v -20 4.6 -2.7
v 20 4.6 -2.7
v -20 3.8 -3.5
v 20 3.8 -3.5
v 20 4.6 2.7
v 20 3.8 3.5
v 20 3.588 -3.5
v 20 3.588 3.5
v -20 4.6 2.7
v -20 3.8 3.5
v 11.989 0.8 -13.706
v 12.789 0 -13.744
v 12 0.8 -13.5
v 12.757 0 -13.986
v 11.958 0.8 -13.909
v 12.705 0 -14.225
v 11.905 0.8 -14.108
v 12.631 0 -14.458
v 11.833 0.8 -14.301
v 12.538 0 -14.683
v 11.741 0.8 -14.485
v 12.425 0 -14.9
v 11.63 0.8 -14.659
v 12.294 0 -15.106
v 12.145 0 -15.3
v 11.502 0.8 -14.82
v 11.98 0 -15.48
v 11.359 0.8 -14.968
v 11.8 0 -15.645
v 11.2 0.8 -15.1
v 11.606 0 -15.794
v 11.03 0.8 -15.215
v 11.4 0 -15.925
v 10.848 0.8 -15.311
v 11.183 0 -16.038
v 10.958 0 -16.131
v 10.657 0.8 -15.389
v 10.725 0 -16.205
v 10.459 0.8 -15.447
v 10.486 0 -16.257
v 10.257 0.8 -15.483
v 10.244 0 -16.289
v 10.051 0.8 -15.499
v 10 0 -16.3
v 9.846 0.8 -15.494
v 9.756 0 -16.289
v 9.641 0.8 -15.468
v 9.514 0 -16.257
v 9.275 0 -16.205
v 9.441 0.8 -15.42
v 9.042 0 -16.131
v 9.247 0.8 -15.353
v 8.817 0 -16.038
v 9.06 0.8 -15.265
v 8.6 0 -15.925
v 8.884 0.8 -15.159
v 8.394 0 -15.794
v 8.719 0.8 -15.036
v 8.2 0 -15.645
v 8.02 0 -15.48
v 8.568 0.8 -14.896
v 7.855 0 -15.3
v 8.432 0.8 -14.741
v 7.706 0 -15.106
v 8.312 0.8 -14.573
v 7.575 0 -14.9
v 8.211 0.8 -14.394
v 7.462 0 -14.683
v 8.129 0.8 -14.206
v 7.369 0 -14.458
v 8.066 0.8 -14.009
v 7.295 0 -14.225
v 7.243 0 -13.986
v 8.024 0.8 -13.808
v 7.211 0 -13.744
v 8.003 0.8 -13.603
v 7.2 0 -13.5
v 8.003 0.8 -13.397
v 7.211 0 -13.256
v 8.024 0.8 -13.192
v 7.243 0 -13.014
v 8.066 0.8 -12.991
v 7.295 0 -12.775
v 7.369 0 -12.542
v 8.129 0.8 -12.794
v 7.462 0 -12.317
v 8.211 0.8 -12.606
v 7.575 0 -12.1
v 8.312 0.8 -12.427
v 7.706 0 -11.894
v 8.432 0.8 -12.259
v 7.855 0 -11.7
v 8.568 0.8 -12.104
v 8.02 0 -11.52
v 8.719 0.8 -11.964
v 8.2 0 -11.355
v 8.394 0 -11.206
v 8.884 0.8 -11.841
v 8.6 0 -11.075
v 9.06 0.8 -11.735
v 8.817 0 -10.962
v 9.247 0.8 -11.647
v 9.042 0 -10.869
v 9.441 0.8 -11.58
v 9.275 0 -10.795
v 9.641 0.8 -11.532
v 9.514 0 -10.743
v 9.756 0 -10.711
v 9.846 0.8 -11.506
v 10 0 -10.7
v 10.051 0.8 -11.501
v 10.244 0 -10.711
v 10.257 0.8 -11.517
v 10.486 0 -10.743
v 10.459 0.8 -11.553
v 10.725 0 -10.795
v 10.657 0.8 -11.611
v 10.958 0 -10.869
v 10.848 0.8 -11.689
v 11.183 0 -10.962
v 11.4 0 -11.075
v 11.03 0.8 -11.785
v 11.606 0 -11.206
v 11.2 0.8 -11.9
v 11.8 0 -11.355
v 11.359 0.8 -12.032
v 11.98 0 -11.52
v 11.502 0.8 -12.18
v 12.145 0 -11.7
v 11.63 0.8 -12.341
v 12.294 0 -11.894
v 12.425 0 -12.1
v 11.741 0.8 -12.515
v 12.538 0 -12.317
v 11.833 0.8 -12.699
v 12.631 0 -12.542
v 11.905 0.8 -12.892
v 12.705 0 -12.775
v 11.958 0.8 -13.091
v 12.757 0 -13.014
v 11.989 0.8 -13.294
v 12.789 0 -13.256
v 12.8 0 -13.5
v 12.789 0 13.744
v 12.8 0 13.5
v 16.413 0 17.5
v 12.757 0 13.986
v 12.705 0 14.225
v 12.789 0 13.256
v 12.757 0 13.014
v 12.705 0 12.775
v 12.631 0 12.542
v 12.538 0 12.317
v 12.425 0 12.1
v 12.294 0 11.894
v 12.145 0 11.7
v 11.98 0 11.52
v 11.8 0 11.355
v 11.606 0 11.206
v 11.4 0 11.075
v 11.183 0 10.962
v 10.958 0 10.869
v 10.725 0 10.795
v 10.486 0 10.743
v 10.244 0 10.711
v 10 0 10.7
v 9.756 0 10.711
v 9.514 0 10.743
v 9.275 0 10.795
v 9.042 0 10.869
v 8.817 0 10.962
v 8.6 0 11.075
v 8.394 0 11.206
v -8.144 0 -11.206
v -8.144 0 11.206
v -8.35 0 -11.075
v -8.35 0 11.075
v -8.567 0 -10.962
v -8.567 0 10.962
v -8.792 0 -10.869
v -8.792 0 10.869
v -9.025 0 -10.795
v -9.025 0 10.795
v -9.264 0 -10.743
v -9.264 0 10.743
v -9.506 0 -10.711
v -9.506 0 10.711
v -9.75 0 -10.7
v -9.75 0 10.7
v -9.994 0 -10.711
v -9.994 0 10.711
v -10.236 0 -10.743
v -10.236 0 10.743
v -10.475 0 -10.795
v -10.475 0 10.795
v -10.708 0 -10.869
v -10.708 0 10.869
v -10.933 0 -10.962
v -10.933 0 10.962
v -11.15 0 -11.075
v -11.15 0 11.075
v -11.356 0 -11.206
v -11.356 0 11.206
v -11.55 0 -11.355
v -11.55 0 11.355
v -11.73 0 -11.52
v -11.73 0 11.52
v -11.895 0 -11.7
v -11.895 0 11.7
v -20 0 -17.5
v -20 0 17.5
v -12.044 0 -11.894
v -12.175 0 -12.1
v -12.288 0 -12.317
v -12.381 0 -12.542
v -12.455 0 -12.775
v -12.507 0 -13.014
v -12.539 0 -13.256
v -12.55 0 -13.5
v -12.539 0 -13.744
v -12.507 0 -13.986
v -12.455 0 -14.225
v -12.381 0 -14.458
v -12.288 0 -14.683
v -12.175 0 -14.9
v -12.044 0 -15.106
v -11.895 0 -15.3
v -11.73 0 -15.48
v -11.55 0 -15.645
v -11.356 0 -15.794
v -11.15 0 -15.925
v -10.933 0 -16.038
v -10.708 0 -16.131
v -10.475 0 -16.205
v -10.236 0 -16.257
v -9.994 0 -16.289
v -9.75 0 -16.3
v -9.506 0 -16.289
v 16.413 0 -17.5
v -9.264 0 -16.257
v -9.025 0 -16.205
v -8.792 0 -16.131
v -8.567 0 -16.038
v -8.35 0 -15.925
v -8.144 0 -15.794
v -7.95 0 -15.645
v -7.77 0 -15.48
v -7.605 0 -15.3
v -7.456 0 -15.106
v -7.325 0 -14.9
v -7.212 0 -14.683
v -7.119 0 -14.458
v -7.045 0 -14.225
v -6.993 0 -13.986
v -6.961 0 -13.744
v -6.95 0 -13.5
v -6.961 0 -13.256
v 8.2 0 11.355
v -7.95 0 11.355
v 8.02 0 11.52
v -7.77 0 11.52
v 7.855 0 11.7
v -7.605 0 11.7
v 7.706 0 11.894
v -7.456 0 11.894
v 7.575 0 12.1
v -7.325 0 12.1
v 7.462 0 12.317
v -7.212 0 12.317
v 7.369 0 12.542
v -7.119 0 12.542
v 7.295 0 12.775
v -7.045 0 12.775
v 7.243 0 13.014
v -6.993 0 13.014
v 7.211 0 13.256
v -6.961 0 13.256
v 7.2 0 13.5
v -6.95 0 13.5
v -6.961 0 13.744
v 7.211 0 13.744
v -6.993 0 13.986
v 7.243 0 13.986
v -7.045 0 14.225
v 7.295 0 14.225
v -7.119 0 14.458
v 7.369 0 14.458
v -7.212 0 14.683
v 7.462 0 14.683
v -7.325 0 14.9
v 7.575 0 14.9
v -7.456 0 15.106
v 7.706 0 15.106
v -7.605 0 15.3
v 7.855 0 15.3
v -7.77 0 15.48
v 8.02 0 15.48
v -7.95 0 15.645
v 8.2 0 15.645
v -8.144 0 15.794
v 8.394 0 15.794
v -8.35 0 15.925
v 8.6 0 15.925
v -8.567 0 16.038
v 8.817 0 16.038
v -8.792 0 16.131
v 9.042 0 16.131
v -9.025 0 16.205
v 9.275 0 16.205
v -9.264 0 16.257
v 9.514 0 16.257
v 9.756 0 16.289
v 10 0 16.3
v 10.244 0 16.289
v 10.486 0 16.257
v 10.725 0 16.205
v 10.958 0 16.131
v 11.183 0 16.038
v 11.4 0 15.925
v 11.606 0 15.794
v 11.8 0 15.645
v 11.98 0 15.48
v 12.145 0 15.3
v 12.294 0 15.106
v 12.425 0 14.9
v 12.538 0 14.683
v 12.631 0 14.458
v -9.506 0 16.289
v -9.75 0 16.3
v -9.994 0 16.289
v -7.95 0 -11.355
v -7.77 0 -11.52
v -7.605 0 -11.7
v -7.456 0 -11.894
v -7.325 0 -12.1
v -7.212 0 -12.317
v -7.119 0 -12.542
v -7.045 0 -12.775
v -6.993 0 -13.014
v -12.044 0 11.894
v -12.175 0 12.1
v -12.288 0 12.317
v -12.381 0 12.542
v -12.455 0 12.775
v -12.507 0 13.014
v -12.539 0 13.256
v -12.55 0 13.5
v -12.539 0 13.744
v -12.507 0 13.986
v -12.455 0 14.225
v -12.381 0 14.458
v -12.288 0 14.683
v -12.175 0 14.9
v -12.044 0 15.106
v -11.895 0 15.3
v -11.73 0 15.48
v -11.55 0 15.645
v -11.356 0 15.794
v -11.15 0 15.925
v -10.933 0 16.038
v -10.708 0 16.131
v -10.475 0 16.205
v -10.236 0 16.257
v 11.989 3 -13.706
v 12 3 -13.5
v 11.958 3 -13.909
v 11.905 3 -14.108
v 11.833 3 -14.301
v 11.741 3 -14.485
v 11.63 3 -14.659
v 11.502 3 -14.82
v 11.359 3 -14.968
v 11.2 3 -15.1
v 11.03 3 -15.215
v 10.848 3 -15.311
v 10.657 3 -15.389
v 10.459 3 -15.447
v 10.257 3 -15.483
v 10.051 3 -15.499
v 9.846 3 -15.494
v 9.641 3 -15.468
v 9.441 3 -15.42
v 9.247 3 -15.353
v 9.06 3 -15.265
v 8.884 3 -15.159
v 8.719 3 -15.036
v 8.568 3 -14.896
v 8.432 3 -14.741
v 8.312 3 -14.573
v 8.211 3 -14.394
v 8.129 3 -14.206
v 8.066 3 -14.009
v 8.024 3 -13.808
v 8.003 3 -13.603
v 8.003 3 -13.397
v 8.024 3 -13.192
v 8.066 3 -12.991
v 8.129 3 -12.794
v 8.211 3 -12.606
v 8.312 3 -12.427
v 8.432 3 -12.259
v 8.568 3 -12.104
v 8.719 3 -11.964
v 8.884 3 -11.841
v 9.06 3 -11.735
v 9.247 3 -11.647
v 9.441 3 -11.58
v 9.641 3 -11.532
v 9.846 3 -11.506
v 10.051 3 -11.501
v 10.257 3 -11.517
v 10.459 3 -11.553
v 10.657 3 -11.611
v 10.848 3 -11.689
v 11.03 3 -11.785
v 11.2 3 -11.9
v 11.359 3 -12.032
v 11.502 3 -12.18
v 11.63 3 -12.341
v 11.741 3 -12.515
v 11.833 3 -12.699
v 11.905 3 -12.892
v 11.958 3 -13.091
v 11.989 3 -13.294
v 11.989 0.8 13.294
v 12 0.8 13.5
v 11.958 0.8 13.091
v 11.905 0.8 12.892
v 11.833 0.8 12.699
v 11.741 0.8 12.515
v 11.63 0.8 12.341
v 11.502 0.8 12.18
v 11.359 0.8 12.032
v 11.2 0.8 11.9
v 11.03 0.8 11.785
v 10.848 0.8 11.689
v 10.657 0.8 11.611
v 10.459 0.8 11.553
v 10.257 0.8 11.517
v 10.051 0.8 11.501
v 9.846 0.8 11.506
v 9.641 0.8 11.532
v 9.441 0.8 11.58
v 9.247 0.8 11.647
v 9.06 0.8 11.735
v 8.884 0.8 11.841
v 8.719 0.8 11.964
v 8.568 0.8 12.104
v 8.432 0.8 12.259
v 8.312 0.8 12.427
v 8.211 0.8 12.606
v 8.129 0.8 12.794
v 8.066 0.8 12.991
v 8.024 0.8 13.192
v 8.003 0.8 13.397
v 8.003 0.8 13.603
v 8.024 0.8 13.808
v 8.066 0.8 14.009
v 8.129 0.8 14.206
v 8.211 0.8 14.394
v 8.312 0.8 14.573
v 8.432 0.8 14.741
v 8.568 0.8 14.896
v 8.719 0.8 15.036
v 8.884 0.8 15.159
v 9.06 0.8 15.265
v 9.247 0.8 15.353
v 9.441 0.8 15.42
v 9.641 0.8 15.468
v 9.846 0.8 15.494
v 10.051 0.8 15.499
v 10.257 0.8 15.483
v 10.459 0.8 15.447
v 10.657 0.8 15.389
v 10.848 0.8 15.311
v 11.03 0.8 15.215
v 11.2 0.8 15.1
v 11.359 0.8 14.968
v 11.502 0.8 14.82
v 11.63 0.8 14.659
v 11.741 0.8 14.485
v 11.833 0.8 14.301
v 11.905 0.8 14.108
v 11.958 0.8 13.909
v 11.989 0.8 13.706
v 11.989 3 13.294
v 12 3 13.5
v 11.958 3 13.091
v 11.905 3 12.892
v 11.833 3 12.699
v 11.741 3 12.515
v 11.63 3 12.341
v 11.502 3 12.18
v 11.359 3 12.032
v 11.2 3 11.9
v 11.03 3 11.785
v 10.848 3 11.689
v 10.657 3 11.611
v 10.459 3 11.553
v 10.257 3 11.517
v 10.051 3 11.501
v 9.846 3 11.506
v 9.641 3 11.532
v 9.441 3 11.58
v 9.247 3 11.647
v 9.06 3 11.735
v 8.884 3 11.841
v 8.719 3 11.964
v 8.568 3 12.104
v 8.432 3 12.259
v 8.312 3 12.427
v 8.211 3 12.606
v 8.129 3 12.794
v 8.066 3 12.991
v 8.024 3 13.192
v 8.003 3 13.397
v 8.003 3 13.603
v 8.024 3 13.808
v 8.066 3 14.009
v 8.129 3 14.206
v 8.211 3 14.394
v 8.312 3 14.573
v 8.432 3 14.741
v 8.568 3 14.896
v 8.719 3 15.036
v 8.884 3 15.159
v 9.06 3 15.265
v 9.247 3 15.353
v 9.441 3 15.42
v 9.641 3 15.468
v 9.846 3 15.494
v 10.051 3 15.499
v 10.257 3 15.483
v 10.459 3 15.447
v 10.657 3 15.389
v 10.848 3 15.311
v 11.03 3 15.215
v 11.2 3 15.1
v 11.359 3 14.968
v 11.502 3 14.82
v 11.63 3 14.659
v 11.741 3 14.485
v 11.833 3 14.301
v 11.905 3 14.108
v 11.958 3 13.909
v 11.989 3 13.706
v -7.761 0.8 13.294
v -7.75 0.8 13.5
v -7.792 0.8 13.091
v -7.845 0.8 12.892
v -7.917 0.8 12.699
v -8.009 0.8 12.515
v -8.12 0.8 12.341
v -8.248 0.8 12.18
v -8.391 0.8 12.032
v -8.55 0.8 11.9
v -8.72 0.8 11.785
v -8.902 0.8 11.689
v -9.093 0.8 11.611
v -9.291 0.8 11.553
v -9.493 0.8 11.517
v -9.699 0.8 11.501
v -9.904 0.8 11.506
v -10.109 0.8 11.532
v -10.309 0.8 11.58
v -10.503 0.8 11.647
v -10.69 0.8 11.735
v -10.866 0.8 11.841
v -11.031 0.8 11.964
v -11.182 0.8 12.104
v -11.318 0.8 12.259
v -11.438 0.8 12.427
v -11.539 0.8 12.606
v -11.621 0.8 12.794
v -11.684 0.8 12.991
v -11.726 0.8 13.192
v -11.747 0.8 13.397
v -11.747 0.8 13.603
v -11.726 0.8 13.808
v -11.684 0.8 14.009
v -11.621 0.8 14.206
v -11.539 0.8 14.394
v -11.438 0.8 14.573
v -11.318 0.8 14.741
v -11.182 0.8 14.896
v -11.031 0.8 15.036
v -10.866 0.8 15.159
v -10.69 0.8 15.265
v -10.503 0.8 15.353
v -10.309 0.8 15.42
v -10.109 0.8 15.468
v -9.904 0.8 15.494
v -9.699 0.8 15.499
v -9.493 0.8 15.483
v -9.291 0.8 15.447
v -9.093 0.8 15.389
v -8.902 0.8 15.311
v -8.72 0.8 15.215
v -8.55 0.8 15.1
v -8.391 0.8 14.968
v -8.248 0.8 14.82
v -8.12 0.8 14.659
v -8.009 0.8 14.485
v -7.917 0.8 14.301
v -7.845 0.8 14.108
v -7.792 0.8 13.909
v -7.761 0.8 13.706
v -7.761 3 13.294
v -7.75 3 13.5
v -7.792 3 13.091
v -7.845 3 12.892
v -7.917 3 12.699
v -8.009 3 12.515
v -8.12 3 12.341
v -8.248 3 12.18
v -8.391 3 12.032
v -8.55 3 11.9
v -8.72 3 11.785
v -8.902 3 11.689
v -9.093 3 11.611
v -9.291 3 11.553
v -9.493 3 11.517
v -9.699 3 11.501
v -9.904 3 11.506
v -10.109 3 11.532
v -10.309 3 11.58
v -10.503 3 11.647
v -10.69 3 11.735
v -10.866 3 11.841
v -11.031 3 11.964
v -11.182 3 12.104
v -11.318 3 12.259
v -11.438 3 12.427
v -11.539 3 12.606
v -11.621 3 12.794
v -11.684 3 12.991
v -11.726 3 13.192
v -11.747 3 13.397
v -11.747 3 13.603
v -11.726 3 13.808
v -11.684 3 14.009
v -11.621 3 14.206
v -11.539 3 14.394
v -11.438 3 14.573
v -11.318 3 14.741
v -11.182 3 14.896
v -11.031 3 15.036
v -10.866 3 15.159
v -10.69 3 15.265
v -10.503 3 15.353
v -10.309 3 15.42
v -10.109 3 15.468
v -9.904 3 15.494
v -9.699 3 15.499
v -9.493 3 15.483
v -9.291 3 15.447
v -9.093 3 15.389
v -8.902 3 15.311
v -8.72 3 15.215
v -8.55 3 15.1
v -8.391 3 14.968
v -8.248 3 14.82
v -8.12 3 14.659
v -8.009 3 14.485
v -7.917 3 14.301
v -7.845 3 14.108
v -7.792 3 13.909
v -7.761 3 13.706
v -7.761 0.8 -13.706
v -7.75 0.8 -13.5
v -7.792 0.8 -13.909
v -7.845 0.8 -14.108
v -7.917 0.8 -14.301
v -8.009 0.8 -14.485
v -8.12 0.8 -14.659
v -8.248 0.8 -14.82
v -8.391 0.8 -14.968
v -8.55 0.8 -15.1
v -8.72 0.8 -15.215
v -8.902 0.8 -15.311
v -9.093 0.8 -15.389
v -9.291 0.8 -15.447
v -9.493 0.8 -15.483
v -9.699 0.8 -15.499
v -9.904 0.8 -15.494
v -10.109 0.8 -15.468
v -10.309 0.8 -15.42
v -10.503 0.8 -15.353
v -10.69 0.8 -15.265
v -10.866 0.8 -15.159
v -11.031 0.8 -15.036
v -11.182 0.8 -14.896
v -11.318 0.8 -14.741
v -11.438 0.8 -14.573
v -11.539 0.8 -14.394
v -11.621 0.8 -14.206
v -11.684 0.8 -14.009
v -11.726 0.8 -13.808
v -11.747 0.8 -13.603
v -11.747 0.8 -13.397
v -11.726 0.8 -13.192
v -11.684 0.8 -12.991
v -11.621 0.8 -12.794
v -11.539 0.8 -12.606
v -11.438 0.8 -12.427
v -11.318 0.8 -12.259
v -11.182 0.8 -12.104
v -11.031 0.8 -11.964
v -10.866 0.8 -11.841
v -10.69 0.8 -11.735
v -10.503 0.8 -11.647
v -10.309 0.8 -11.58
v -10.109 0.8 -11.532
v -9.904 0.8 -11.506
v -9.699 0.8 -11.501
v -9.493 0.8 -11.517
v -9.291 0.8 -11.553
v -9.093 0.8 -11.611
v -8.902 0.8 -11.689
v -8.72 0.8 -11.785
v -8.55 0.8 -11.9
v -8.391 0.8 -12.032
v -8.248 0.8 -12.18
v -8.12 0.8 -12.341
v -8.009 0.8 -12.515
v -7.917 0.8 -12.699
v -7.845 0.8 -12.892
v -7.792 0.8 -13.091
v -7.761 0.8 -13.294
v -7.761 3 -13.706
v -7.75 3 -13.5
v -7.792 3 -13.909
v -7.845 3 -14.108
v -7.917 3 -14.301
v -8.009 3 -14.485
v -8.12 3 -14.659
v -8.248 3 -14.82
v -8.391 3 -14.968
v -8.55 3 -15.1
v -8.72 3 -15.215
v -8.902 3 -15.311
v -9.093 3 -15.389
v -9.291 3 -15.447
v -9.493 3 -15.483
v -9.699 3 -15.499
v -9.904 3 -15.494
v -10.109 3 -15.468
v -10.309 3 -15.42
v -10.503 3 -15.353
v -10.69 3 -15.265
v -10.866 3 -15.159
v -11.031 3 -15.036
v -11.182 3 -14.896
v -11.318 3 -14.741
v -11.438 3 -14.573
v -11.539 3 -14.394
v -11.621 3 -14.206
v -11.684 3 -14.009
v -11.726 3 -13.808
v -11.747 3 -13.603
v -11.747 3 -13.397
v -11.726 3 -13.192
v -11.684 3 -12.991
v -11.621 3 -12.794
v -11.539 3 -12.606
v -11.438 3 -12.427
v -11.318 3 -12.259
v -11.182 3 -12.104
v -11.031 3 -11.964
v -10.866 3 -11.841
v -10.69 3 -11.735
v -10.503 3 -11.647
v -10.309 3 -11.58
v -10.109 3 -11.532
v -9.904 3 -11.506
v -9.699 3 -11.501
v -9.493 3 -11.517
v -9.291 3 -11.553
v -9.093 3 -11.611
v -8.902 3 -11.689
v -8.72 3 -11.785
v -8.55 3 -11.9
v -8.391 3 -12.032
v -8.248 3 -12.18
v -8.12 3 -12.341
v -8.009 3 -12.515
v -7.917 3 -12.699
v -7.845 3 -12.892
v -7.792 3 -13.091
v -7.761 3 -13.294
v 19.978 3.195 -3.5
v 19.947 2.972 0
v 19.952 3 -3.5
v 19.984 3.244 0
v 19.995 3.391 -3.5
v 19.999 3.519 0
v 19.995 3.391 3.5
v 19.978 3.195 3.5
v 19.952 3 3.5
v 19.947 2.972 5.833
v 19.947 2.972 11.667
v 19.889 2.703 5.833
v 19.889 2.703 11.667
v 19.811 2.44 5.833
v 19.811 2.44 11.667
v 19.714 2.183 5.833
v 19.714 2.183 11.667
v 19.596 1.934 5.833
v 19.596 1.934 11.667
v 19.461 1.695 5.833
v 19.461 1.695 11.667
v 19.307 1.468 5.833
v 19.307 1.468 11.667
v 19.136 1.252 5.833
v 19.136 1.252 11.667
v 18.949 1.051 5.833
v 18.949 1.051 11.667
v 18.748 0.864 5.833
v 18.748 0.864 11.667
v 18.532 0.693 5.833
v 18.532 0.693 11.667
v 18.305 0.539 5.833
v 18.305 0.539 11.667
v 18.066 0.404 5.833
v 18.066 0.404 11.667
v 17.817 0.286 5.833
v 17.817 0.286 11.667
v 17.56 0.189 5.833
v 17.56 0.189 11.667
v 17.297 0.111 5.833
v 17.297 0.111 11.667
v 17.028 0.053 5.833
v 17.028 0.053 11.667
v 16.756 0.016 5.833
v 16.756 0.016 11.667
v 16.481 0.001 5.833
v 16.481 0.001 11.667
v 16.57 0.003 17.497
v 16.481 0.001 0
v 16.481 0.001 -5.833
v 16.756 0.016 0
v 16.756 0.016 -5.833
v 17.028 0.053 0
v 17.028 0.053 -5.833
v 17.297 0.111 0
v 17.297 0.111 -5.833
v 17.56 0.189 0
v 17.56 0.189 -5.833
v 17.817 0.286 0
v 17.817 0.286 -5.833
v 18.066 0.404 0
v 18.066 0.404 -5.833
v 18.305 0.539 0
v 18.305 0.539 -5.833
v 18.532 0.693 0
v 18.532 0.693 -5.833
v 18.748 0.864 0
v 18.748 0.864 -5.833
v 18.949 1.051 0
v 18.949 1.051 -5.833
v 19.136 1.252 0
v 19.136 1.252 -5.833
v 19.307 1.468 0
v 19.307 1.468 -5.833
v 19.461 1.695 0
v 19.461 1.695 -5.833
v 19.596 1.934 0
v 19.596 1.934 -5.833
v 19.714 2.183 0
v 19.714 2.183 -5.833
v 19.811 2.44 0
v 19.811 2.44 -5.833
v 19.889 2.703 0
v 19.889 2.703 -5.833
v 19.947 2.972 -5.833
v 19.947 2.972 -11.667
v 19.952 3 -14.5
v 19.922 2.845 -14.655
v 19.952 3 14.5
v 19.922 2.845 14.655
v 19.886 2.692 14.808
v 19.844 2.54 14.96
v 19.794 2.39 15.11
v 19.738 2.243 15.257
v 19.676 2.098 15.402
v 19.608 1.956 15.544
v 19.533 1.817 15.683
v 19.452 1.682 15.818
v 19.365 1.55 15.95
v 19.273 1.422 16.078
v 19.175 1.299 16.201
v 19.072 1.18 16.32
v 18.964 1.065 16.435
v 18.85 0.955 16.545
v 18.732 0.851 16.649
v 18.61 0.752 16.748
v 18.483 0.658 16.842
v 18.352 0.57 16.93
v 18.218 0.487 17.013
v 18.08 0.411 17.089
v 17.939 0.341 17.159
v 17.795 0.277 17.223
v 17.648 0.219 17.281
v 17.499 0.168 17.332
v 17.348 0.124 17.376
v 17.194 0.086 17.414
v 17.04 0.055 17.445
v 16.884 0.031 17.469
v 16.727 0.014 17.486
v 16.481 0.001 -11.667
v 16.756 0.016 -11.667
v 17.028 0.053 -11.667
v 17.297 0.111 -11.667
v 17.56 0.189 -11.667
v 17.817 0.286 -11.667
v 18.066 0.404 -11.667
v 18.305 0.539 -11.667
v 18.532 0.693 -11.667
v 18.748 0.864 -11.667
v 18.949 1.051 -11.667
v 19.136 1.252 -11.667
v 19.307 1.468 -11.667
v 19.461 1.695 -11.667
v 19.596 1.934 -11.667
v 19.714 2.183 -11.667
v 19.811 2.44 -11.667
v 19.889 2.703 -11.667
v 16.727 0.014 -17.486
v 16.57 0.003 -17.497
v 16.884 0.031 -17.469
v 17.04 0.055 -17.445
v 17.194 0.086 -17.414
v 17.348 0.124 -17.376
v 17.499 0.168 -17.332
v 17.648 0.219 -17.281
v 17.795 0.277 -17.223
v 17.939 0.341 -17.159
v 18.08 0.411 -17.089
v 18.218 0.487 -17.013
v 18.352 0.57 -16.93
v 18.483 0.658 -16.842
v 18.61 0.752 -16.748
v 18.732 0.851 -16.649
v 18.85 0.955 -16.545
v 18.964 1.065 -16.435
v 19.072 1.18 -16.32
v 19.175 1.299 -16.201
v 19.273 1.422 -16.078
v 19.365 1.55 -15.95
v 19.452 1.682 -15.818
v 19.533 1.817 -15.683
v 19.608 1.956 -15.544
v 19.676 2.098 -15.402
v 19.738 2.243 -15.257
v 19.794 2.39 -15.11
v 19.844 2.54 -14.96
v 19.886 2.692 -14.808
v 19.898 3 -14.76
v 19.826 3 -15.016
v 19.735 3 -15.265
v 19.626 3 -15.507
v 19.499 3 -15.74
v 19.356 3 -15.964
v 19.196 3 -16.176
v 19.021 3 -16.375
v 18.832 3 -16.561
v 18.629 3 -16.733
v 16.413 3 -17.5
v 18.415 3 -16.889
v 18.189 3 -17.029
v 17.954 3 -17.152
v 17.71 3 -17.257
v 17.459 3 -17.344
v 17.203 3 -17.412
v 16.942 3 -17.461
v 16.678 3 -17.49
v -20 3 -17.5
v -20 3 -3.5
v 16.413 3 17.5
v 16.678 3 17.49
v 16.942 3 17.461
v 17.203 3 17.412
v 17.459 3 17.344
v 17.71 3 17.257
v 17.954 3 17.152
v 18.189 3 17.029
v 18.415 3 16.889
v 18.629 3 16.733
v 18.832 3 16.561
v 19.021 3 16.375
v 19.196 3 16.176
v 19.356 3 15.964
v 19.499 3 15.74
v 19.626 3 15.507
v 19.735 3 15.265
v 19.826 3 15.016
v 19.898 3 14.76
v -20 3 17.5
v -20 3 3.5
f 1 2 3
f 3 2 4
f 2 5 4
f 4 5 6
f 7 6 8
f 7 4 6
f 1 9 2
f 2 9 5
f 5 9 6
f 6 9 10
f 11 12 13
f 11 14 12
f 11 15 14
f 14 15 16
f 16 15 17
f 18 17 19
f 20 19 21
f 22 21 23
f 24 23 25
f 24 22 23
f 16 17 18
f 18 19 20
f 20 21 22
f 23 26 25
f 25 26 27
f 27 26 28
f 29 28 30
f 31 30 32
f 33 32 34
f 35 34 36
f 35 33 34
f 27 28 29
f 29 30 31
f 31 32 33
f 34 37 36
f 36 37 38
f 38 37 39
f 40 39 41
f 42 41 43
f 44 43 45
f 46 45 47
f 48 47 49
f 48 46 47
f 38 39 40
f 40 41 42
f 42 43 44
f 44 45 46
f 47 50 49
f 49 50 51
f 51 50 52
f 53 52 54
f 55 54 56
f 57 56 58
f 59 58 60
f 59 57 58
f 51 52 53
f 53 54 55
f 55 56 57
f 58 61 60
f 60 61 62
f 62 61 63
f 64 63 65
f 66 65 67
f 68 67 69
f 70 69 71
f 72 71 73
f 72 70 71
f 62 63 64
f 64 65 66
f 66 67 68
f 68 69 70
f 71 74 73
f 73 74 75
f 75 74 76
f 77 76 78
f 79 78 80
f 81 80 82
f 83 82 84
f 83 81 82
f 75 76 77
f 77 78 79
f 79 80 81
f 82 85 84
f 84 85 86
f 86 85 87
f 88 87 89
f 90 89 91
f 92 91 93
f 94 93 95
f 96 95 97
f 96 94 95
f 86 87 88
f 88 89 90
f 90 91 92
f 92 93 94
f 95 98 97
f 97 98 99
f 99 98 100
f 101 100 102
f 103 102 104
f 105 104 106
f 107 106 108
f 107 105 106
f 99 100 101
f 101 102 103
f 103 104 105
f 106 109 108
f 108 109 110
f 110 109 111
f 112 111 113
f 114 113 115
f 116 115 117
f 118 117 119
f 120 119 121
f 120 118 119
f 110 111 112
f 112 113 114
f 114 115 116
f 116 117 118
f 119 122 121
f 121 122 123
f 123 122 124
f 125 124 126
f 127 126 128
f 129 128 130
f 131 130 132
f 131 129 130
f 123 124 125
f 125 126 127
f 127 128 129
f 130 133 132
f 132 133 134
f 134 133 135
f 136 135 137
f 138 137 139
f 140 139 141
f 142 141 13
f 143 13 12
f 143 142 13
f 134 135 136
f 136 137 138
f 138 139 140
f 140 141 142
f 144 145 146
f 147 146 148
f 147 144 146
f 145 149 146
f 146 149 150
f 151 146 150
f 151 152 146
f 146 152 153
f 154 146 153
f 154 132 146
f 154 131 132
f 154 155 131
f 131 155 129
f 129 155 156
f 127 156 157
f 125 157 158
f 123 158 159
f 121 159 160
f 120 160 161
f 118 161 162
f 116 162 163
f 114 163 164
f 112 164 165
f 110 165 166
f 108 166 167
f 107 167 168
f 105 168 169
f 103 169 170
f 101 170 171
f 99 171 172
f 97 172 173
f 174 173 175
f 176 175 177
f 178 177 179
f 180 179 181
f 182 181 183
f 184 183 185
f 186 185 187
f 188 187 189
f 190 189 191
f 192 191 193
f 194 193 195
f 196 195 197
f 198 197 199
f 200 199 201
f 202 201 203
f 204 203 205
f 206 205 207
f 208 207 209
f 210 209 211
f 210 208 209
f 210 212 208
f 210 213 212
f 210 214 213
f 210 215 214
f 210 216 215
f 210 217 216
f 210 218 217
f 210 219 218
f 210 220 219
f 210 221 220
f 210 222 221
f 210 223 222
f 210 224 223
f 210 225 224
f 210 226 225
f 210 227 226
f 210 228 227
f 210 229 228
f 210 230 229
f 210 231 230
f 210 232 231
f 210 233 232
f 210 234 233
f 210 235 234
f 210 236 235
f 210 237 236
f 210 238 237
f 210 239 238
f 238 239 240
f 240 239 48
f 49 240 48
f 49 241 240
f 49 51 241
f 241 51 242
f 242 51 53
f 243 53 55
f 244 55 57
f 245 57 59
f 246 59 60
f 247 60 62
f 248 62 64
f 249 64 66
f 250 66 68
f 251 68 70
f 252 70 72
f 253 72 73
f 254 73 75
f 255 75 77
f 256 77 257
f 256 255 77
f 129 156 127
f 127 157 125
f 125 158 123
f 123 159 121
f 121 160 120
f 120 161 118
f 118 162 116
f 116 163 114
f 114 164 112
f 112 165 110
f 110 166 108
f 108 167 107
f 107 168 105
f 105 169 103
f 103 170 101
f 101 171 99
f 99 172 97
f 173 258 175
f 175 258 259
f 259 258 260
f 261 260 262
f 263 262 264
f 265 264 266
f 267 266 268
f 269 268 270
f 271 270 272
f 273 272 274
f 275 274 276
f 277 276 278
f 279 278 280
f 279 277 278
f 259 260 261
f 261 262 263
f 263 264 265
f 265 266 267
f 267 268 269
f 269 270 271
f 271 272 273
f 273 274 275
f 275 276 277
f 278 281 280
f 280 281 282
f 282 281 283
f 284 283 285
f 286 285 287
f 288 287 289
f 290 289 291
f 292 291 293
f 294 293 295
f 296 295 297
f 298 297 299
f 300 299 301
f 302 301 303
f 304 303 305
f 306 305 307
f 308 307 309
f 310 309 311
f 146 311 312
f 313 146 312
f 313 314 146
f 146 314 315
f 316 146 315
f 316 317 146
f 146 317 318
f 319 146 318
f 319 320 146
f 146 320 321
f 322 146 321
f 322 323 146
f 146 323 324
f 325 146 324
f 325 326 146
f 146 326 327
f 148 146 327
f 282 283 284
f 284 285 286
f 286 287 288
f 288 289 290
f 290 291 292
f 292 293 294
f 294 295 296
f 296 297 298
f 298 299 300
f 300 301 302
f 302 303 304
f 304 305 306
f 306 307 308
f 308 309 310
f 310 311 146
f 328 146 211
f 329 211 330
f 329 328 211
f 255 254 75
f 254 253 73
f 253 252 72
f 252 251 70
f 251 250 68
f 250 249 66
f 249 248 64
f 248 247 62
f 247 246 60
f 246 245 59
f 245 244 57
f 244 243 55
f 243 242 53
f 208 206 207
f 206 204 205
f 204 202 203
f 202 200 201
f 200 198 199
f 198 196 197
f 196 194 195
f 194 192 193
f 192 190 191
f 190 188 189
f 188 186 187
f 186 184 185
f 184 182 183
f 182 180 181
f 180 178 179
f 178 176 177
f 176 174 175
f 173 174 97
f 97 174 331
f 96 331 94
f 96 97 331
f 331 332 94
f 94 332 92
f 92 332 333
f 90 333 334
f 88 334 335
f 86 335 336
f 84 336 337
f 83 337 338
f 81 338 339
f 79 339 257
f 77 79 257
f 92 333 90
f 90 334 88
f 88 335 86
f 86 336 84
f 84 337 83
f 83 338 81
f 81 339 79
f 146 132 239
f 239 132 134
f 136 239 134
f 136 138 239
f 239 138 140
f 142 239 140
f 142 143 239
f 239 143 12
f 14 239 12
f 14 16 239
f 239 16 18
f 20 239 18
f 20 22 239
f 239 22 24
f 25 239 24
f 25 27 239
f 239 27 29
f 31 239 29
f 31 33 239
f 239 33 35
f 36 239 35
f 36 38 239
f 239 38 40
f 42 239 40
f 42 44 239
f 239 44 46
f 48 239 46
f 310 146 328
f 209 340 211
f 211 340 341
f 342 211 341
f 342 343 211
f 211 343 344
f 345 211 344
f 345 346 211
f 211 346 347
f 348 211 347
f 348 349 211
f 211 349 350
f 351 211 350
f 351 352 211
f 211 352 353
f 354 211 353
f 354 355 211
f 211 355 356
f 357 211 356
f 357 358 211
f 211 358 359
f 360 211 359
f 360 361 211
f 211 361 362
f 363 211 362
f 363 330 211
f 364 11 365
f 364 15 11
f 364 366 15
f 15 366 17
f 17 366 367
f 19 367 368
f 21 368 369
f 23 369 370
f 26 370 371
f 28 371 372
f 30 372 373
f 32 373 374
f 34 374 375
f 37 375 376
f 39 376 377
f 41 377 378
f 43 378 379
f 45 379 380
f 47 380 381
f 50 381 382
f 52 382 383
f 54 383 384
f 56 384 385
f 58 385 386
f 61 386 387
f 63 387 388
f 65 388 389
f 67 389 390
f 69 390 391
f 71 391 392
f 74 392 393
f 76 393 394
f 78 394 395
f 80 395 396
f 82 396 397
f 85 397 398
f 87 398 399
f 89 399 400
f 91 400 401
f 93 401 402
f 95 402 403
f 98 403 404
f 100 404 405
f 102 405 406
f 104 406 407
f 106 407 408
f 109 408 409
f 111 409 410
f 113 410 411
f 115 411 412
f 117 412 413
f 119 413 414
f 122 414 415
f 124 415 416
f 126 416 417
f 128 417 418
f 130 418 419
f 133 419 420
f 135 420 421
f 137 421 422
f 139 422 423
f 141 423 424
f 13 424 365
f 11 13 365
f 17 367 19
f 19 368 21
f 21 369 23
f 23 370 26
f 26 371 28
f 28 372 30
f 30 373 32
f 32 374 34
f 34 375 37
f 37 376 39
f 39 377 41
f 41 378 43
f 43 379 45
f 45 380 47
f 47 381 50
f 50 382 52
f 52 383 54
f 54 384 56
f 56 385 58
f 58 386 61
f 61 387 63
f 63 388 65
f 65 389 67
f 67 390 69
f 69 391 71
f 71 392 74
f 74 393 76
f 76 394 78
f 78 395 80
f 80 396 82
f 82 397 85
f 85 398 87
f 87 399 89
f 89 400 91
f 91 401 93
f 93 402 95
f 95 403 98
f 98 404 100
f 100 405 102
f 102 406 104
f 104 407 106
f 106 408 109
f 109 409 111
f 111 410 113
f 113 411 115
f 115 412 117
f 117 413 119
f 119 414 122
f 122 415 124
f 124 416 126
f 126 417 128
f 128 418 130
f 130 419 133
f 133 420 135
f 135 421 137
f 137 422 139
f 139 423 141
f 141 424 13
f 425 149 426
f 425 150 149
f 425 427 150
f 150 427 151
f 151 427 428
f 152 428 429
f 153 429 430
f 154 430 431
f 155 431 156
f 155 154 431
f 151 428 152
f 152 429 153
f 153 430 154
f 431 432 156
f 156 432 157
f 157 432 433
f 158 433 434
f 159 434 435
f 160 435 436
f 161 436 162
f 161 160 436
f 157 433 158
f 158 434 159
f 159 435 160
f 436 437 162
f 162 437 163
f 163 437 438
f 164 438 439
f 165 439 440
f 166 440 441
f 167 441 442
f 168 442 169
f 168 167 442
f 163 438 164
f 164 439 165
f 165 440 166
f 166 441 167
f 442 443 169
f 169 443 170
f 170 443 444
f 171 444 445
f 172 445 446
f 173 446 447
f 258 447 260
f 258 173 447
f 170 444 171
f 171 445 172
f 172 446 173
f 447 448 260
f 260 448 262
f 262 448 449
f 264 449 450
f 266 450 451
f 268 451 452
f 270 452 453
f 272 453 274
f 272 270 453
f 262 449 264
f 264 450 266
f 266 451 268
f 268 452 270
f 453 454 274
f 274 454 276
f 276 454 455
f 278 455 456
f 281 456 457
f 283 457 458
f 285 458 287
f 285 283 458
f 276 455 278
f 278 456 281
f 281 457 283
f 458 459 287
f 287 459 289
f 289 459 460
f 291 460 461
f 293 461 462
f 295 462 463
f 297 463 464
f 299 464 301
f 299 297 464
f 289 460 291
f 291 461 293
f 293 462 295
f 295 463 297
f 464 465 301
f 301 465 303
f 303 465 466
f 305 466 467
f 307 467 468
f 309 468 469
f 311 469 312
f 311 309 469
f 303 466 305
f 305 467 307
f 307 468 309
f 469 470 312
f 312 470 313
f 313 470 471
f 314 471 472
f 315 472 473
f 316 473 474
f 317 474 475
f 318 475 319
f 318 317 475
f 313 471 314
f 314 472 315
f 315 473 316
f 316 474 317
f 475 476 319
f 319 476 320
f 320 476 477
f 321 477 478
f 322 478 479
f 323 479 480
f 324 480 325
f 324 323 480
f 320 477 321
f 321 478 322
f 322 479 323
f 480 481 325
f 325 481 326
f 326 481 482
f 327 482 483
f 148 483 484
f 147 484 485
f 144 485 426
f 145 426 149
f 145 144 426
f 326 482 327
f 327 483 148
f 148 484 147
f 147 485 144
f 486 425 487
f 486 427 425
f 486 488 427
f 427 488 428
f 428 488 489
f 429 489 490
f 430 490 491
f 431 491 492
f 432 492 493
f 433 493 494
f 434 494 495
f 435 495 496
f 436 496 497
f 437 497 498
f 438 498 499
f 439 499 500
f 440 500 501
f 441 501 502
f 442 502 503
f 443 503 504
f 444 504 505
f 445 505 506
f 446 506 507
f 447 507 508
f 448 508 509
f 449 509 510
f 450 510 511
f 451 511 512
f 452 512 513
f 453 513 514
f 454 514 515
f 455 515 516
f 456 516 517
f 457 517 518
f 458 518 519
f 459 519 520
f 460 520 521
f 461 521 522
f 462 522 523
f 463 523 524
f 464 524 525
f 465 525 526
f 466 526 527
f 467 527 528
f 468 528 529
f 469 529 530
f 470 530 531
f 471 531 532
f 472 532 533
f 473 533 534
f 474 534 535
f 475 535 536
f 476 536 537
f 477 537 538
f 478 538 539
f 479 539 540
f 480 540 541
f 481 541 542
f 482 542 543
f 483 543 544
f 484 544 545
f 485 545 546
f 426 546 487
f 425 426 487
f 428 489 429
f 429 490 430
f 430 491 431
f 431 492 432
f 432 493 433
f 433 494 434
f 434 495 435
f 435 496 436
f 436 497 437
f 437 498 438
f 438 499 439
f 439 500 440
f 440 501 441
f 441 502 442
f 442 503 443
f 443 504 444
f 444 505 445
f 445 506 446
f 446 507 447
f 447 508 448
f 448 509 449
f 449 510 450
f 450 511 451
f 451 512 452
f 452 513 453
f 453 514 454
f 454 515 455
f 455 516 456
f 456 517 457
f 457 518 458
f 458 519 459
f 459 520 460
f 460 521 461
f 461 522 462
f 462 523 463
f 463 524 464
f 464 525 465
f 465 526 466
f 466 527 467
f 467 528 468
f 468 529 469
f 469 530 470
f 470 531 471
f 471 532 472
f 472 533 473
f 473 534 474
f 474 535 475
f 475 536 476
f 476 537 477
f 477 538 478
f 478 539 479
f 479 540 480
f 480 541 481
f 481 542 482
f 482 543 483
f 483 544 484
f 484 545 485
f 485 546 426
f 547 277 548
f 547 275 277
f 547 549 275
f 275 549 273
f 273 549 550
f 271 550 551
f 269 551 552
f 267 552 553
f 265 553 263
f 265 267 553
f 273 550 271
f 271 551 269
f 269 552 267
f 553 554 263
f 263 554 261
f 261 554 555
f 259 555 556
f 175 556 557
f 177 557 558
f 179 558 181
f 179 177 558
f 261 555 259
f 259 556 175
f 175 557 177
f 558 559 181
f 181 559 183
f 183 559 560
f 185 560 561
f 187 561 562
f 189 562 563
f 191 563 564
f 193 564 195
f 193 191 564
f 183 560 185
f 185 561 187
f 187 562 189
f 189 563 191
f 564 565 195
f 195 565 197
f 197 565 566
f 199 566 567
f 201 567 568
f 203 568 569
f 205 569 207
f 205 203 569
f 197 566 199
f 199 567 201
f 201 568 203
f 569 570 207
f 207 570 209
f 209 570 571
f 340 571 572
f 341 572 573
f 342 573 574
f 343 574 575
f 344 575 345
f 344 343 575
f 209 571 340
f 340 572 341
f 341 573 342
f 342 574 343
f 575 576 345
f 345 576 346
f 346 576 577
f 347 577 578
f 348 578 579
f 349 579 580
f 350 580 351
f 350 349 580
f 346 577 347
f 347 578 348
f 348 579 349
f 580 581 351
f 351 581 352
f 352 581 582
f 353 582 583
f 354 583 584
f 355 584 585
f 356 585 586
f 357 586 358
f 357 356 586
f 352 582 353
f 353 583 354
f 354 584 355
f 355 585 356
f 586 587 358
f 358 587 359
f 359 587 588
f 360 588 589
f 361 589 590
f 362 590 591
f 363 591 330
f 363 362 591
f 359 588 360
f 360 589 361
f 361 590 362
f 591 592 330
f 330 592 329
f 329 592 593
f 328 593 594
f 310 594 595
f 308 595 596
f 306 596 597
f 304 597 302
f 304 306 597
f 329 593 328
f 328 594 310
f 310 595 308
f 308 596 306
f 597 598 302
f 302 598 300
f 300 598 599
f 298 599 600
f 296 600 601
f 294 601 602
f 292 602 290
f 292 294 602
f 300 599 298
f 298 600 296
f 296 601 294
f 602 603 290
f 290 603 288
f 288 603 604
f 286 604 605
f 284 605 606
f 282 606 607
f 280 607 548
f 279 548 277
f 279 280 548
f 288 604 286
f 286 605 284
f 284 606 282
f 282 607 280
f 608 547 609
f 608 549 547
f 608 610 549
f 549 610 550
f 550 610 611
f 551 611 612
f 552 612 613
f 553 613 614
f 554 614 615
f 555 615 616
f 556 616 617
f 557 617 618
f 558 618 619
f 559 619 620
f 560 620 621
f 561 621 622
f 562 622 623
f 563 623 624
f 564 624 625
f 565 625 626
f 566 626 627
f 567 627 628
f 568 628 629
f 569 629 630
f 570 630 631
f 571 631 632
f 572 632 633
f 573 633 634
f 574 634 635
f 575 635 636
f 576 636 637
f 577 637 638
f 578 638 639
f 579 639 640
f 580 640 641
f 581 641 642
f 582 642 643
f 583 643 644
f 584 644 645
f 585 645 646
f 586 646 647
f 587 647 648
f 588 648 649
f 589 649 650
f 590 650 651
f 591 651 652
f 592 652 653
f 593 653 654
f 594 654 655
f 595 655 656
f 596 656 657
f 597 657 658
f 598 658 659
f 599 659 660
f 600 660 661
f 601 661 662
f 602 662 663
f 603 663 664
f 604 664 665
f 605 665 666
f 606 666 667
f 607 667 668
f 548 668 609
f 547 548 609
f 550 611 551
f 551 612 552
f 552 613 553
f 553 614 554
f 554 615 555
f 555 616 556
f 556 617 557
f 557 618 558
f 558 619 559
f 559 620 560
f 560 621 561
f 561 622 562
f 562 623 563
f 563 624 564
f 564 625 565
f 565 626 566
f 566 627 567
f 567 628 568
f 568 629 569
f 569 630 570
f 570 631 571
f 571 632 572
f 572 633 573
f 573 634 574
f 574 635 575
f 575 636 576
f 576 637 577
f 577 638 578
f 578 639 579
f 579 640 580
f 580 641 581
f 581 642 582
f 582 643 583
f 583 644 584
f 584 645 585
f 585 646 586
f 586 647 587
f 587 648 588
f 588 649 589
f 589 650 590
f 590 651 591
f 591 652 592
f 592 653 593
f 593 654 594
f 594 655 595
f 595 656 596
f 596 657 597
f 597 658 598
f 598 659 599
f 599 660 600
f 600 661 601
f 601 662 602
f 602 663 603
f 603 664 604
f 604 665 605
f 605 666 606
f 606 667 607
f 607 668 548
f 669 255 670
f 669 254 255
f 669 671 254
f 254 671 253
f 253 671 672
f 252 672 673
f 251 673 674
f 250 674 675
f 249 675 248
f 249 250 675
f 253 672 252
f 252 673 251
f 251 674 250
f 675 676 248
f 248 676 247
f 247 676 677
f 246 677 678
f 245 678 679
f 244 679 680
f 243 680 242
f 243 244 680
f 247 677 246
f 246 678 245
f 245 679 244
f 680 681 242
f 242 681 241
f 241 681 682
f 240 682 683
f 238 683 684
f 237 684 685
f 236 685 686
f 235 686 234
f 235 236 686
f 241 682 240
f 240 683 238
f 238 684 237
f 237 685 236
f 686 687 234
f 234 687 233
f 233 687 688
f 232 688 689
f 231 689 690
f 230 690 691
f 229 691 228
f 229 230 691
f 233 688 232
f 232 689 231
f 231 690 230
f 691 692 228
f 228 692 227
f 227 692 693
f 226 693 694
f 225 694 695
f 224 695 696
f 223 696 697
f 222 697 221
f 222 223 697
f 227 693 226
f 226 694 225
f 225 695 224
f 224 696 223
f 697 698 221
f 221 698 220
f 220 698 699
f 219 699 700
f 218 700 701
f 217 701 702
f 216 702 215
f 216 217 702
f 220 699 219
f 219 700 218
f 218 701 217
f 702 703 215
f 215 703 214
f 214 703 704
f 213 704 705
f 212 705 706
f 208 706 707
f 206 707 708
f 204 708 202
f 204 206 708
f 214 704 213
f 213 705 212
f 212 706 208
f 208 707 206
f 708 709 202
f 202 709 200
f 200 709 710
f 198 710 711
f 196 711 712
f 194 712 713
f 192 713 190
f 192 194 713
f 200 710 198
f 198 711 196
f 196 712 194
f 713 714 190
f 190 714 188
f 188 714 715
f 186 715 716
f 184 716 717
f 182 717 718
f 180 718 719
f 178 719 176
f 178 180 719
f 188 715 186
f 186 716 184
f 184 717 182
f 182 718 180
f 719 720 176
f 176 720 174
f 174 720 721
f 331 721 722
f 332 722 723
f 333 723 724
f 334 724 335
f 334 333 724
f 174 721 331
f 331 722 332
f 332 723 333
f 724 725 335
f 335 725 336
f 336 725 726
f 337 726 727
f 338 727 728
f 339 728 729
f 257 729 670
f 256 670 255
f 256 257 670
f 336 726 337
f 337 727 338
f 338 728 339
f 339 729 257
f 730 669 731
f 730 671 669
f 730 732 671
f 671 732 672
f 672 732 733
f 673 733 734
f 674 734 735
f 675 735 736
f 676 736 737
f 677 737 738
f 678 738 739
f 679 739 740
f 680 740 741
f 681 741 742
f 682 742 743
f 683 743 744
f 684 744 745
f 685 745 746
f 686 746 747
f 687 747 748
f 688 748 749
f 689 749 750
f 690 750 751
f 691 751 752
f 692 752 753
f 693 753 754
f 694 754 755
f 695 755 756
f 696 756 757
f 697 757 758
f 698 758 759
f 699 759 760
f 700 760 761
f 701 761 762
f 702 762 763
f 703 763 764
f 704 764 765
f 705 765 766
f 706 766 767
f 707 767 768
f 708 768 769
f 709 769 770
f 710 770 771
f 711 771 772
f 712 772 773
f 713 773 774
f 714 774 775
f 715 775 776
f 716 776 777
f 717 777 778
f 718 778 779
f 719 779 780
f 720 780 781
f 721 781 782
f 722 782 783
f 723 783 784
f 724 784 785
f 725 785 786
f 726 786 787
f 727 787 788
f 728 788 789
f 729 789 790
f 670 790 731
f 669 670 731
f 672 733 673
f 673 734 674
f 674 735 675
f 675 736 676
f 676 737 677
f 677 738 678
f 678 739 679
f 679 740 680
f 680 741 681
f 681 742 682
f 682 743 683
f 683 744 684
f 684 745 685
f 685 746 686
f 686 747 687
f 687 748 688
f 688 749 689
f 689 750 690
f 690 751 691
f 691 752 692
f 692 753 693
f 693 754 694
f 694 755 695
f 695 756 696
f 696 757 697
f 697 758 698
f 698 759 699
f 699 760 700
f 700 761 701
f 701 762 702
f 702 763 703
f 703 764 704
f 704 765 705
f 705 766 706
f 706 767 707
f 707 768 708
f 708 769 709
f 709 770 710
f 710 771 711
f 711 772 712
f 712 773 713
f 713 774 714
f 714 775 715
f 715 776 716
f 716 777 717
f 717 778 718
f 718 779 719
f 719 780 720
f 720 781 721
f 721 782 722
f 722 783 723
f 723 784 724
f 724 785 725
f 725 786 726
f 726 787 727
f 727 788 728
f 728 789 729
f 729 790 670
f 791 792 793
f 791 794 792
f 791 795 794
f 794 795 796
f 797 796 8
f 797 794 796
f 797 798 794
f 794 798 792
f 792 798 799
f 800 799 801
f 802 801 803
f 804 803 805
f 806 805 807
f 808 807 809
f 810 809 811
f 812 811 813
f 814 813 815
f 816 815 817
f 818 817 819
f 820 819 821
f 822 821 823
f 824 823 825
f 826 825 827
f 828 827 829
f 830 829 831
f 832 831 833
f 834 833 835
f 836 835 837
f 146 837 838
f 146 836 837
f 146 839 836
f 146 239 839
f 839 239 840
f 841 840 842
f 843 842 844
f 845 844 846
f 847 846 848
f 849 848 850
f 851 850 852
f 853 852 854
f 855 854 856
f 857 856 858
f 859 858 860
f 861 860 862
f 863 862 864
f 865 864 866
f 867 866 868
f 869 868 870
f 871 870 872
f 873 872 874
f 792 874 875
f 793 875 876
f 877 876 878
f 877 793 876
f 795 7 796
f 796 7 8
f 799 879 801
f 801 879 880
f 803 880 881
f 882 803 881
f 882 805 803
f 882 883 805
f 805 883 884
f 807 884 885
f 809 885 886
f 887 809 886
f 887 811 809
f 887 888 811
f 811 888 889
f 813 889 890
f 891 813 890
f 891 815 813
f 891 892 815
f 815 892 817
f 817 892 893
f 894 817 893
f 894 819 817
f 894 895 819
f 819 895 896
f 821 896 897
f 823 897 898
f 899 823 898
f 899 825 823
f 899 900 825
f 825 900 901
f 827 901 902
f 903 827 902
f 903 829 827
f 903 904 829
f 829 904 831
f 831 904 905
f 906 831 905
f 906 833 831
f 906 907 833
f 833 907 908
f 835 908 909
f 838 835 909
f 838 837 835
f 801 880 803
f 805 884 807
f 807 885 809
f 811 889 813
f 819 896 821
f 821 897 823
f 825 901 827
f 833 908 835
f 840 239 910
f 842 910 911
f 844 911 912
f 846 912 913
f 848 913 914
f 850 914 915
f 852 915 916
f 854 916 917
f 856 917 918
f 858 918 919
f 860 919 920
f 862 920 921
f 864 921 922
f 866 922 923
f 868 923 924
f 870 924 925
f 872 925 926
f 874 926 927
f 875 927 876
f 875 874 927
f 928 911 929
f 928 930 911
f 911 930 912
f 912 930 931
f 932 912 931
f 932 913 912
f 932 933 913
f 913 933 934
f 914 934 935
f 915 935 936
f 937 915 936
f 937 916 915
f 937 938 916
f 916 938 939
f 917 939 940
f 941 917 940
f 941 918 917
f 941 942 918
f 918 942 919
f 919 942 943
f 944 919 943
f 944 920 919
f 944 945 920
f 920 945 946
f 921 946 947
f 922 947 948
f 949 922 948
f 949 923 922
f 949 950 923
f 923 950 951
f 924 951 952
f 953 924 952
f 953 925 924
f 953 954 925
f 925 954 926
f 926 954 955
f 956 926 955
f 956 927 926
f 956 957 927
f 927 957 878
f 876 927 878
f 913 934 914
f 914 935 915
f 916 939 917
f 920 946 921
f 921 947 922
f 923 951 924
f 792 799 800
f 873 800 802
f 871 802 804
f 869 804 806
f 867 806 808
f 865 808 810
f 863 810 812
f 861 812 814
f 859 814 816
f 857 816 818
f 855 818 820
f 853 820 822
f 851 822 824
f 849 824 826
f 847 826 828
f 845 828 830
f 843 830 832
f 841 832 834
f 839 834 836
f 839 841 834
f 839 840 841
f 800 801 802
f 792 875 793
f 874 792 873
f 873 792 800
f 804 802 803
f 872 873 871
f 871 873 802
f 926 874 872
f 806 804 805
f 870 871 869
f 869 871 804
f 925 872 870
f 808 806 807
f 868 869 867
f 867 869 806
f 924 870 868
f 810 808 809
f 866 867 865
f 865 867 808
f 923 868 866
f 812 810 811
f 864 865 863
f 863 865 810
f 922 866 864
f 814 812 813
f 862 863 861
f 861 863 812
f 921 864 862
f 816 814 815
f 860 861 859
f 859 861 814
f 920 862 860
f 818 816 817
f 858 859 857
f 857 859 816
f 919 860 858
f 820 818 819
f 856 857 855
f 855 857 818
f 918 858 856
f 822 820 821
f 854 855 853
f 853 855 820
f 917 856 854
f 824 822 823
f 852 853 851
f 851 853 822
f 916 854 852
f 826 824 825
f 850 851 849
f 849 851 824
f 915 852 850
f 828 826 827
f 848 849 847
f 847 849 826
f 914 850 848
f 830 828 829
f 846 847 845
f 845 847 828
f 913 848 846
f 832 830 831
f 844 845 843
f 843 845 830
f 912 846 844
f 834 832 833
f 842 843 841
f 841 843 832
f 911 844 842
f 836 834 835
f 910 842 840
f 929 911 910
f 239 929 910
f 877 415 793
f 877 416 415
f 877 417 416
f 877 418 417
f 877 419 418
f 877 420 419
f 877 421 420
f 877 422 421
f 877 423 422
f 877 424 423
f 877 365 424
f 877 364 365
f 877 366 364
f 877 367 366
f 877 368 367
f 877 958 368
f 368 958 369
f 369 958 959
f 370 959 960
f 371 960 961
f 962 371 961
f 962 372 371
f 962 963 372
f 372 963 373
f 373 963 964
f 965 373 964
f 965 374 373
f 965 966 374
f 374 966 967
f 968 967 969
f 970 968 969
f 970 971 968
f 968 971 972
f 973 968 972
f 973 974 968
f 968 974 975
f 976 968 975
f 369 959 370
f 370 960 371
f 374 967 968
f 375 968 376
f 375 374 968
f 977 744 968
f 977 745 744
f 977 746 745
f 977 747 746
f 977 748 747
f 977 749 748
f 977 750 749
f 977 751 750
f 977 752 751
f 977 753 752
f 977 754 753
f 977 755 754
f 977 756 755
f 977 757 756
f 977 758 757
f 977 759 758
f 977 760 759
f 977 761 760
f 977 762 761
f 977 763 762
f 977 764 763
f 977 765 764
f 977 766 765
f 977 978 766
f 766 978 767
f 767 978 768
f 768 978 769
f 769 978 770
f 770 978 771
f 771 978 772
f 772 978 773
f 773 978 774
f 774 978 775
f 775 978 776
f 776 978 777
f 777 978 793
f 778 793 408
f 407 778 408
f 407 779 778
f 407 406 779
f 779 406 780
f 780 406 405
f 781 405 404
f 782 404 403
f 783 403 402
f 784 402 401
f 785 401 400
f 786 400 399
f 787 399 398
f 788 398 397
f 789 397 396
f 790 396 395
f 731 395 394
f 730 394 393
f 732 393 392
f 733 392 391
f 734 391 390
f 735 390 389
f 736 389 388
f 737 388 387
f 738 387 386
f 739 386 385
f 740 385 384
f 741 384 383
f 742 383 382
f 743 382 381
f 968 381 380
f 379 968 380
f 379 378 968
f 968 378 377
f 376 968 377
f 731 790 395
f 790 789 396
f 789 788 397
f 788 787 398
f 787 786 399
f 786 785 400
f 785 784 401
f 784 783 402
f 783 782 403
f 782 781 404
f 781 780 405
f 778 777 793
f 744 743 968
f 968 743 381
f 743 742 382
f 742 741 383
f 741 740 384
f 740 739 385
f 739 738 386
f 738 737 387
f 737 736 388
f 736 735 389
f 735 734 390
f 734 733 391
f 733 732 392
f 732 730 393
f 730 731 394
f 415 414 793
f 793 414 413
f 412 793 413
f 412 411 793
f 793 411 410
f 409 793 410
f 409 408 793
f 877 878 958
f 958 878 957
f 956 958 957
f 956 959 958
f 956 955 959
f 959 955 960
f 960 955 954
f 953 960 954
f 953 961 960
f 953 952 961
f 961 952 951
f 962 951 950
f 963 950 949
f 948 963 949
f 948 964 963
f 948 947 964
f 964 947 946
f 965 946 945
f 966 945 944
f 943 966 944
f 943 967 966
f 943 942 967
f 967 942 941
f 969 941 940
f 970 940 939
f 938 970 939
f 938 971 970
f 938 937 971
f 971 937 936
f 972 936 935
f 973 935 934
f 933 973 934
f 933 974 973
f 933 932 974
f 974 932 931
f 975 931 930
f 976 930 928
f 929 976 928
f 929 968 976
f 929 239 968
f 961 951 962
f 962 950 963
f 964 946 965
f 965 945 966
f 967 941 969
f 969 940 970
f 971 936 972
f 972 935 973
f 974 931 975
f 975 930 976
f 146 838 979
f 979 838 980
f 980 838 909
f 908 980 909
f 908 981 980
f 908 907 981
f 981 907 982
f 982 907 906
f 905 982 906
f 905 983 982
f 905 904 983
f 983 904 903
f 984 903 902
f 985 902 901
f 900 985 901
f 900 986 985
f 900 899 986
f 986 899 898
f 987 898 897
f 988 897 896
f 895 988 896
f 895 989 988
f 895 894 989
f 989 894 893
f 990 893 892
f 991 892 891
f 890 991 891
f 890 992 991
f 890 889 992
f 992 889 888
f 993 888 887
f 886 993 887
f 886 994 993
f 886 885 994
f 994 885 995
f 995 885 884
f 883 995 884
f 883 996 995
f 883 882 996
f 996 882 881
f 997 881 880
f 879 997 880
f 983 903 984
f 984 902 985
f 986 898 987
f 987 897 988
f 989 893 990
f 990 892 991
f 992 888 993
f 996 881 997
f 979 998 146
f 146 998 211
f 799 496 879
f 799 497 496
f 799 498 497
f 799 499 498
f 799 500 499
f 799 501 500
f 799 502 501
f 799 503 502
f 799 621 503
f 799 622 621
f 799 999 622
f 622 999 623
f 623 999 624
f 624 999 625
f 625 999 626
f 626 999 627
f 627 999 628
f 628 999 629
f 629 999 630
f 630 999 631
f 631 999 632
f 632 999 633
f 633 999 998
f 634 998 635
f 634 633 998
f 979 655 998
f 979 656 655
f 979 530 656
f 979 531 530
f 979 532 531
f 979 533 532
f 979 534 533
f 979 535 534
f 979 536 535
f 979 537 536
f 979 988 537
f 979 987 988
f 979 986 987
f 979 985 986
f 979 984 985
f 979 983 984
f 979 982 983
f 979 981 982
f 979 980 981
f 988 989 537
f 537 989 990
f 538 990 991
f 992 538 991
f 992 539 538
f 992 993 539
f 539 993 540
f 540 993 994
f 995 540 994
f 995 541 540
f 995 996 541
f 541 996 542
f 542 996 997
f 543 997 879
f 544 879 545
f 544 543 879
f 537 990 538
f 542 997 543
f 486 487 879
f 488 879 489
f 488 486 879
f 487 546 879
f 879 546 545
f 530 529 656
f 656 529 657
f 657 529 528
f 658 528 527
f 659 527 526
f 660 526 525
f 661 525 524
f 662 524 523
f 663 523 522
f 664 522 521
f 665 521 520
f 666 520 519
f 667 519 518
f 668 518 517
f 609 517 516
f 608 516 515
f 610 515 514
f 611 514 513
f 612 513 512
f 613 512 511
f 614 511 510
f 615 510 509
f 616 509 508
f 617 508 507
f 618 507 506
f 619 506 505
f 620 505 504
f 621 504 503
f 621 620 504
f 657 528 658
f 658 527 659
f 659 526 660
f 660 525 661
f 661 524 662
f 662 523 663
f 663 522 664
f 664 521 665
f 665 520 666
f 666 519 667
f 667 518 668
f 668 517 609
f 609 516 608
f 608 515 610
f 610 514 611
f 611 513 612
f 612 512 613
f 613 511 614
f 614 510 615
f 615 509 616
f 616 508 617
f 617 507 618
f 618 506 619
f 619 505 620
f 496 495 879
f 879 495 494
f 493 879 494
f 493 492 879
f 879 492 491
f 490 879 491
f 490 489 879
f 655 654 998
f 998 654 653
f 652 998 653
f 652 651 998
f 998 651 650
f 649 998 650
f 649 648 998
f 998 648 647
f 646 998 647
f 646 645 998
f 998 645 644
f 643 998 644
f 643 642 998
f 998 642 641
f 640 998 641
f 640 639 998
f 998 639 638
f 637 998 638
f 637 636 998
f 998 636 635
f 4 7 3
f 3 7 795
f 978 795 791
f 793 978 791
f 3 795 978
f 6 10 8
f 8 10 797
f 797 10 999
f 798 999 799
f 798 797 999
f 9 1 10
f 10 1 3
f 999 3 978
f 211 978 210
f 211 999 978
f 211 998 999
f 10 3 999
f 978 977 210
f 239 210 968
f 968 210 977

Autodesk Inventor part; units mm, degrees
ref_plane "YZ Plane" through (0, 0, 0) normal (1, 0, 0) x (0, 1, 0)
ref_plane "XZ Plane" through (0, 0, 0) normal (0, 1, 0) x (-1, 0, 0)
ref_plane "XY Plane" through (0, 0, 0) normal (0, 0, 1) x (1, 0, 0)
sketch "Sketch2" plane through (0, 0, 0) normal (0, 1, 0) x (-1, 0, 0)
  line L0 (20, 17.5) -> (-20, 17.5)
  line L1 (-20, 17.5) -> (-20, -17.5)
  line L2 (-20, -17.5) -> (20, -17.5)
  line L3 (20, -17.5) -> (20, 17.5)
  point P0 (0, 0)
  point P1 (20, 0)
  point P2 (0, -17.5)
  dimension "d0" = 40
  dimension "d1" = 35
extrude "Extrusion1" add sketch "Sketch2" along normal blind 3
sketch "Sketch3" plane through (0, 3, 0) normal (0, 1, 0) x (1, 0, 0)
  line L0 (-20, -17.5) -> (20, -17.5) projected
  line L1 (20, -17.5) -> (20, 17.5) projected
  line L2 (20, 17.5) -> (-20, 17.5) projected
  line L3 (-20, 17.5) -> (-20, -17.5) projected
  line L4 (-20, 0) -> (20, 0)
  line L5 (0, 0) -> (-9.75, 0)
  line L6 (-9.75, 0) -> (-9.75, 17.5)
  line L7 (0, 0) -> (9.75, 0)
  line L8 (9.75, 0) -> (9.75, 17.5)
  line L9 (0, 0) -> (0, 13.5)
  line L10 (0, 13.5) -> (-20, 13.5)
  line L11 (0, 13.5) -> (20, 13.5)
  circle A0 centre (10, 13.5) radius 2
  circle A1 centre (-9.75, 13.5) radius 2
  circle A2 centre (10, -13.5) radius 2
  circle A3 centre (-9.75, -13.5) radius 2
  dimension "d4" = 9.75
  dimension "d5" = 9.75
  dimension "d6" = 13.5
  dimension "d7" = 4
  dimension "d8" = 4
extrude "Extrusion2" cut sketch "Sketch3" against normal through all contours A1 L6 L10 | L10 L6 A1 | L6 L10 A1 | A0 L8 L11 | L11 L8 A0 | A0 L11 L8 | L6 A1 L10 | L11 A0 L8 | A2 | A3
sketch "Sketch4" plane through (0, 3, 0) normal (0, 1, 0) x (1, 0, 0)
  circle A0 centre (10, -13.5) radius 2 projected
  circle A1 centre (-9.75, 13.5) radius 2 projected
  circle A2 centre (10, 13.5) radius 2 projected
  circle A3 centre (-9.75, -13.5) radius 2 projected
  line L0 (-20, -17.5) -> (20, -17.5) projected
  line L1 (20, -17.5) -> (20, 17.5) projected
  line L2 (20, 17.5) -> (-20, 17.5) projected
  line L3 (-20, 17.5) -> (-20, -17.5) projected
  line L4 (20, -3.5) -> (-20, -3.5)
  line L5 (-20, -3.5) -> (-20, 3.5)
  line L6 (-20, 3.5) -> (20, 3.5)
  line L7 (20, 3.5) -> (20, -3.5)
  line L8 (20, -3.5) -> (-20, 3.5) construction
  line L9 (-20, -3.5) -> (20, 3.5) construction
  point P0 (0, 0)
  dimension "d11" = 7
extrude "Extrusion3" add sketch "Sketch4" along normal blind 1.6 contours L3 L6 L1 L4
fillet "Fillet1" radius 3.5875 3 edges at (20, 1.5, 17.5) (20, 1.5, -17.5) (20, 0, 0)
sketch "Sketch5" plane through (0, 0, 0) normal (0, -1, 0) x (1, 0, 0)
  circle A0 centre (-9.75, 13.5) radius 2 projected
  circle A1 centre (10, -13.5) radius 2 projected
  circle A2 centre (-9.75, -13.5) radius 2 projected
  circle A3 centre (10, 13.5) radius 2 projected
  line L0 (16.4125, 17.5) -> (16.4125, -17.5) projected
  line L1 (-20, 17.5) -> (16.4125, 17.5) projected
  line L2 (-20, -17.5) -> (-20, 17.5) projected
  line L3 (16.4125, -17.5) -> (-20, -17.5) projected
  circle A4 centre (-9.75, 13.5) radius 3
  circle A5 centre (10, 13.5) radius 3
  circle A6 centre (10, -13.5) radius 3
  circle A7 centre (-9.75, -13.5) radius 3
  point P0 (0, 0)
  dimension "d15" = 1
  dimension "d16" = 1
  dimension "d17" = 1
  dimension "d18" = 1
chamfer "Chamfer1" distance 0.8 angle 45 4 edges at (-11.75, 0, -13.5) (-11.75, 0, 13.5) (8, 0, 13.5) (8, 0, -13.5)
chamfer "Chamfer2" distance 0.8 angle 45 2 edges at (0, 4.6, 3.5) (0, 4.6, -3.5)
properties part number "RearCarriageSupport" material "ABS Plastic"
